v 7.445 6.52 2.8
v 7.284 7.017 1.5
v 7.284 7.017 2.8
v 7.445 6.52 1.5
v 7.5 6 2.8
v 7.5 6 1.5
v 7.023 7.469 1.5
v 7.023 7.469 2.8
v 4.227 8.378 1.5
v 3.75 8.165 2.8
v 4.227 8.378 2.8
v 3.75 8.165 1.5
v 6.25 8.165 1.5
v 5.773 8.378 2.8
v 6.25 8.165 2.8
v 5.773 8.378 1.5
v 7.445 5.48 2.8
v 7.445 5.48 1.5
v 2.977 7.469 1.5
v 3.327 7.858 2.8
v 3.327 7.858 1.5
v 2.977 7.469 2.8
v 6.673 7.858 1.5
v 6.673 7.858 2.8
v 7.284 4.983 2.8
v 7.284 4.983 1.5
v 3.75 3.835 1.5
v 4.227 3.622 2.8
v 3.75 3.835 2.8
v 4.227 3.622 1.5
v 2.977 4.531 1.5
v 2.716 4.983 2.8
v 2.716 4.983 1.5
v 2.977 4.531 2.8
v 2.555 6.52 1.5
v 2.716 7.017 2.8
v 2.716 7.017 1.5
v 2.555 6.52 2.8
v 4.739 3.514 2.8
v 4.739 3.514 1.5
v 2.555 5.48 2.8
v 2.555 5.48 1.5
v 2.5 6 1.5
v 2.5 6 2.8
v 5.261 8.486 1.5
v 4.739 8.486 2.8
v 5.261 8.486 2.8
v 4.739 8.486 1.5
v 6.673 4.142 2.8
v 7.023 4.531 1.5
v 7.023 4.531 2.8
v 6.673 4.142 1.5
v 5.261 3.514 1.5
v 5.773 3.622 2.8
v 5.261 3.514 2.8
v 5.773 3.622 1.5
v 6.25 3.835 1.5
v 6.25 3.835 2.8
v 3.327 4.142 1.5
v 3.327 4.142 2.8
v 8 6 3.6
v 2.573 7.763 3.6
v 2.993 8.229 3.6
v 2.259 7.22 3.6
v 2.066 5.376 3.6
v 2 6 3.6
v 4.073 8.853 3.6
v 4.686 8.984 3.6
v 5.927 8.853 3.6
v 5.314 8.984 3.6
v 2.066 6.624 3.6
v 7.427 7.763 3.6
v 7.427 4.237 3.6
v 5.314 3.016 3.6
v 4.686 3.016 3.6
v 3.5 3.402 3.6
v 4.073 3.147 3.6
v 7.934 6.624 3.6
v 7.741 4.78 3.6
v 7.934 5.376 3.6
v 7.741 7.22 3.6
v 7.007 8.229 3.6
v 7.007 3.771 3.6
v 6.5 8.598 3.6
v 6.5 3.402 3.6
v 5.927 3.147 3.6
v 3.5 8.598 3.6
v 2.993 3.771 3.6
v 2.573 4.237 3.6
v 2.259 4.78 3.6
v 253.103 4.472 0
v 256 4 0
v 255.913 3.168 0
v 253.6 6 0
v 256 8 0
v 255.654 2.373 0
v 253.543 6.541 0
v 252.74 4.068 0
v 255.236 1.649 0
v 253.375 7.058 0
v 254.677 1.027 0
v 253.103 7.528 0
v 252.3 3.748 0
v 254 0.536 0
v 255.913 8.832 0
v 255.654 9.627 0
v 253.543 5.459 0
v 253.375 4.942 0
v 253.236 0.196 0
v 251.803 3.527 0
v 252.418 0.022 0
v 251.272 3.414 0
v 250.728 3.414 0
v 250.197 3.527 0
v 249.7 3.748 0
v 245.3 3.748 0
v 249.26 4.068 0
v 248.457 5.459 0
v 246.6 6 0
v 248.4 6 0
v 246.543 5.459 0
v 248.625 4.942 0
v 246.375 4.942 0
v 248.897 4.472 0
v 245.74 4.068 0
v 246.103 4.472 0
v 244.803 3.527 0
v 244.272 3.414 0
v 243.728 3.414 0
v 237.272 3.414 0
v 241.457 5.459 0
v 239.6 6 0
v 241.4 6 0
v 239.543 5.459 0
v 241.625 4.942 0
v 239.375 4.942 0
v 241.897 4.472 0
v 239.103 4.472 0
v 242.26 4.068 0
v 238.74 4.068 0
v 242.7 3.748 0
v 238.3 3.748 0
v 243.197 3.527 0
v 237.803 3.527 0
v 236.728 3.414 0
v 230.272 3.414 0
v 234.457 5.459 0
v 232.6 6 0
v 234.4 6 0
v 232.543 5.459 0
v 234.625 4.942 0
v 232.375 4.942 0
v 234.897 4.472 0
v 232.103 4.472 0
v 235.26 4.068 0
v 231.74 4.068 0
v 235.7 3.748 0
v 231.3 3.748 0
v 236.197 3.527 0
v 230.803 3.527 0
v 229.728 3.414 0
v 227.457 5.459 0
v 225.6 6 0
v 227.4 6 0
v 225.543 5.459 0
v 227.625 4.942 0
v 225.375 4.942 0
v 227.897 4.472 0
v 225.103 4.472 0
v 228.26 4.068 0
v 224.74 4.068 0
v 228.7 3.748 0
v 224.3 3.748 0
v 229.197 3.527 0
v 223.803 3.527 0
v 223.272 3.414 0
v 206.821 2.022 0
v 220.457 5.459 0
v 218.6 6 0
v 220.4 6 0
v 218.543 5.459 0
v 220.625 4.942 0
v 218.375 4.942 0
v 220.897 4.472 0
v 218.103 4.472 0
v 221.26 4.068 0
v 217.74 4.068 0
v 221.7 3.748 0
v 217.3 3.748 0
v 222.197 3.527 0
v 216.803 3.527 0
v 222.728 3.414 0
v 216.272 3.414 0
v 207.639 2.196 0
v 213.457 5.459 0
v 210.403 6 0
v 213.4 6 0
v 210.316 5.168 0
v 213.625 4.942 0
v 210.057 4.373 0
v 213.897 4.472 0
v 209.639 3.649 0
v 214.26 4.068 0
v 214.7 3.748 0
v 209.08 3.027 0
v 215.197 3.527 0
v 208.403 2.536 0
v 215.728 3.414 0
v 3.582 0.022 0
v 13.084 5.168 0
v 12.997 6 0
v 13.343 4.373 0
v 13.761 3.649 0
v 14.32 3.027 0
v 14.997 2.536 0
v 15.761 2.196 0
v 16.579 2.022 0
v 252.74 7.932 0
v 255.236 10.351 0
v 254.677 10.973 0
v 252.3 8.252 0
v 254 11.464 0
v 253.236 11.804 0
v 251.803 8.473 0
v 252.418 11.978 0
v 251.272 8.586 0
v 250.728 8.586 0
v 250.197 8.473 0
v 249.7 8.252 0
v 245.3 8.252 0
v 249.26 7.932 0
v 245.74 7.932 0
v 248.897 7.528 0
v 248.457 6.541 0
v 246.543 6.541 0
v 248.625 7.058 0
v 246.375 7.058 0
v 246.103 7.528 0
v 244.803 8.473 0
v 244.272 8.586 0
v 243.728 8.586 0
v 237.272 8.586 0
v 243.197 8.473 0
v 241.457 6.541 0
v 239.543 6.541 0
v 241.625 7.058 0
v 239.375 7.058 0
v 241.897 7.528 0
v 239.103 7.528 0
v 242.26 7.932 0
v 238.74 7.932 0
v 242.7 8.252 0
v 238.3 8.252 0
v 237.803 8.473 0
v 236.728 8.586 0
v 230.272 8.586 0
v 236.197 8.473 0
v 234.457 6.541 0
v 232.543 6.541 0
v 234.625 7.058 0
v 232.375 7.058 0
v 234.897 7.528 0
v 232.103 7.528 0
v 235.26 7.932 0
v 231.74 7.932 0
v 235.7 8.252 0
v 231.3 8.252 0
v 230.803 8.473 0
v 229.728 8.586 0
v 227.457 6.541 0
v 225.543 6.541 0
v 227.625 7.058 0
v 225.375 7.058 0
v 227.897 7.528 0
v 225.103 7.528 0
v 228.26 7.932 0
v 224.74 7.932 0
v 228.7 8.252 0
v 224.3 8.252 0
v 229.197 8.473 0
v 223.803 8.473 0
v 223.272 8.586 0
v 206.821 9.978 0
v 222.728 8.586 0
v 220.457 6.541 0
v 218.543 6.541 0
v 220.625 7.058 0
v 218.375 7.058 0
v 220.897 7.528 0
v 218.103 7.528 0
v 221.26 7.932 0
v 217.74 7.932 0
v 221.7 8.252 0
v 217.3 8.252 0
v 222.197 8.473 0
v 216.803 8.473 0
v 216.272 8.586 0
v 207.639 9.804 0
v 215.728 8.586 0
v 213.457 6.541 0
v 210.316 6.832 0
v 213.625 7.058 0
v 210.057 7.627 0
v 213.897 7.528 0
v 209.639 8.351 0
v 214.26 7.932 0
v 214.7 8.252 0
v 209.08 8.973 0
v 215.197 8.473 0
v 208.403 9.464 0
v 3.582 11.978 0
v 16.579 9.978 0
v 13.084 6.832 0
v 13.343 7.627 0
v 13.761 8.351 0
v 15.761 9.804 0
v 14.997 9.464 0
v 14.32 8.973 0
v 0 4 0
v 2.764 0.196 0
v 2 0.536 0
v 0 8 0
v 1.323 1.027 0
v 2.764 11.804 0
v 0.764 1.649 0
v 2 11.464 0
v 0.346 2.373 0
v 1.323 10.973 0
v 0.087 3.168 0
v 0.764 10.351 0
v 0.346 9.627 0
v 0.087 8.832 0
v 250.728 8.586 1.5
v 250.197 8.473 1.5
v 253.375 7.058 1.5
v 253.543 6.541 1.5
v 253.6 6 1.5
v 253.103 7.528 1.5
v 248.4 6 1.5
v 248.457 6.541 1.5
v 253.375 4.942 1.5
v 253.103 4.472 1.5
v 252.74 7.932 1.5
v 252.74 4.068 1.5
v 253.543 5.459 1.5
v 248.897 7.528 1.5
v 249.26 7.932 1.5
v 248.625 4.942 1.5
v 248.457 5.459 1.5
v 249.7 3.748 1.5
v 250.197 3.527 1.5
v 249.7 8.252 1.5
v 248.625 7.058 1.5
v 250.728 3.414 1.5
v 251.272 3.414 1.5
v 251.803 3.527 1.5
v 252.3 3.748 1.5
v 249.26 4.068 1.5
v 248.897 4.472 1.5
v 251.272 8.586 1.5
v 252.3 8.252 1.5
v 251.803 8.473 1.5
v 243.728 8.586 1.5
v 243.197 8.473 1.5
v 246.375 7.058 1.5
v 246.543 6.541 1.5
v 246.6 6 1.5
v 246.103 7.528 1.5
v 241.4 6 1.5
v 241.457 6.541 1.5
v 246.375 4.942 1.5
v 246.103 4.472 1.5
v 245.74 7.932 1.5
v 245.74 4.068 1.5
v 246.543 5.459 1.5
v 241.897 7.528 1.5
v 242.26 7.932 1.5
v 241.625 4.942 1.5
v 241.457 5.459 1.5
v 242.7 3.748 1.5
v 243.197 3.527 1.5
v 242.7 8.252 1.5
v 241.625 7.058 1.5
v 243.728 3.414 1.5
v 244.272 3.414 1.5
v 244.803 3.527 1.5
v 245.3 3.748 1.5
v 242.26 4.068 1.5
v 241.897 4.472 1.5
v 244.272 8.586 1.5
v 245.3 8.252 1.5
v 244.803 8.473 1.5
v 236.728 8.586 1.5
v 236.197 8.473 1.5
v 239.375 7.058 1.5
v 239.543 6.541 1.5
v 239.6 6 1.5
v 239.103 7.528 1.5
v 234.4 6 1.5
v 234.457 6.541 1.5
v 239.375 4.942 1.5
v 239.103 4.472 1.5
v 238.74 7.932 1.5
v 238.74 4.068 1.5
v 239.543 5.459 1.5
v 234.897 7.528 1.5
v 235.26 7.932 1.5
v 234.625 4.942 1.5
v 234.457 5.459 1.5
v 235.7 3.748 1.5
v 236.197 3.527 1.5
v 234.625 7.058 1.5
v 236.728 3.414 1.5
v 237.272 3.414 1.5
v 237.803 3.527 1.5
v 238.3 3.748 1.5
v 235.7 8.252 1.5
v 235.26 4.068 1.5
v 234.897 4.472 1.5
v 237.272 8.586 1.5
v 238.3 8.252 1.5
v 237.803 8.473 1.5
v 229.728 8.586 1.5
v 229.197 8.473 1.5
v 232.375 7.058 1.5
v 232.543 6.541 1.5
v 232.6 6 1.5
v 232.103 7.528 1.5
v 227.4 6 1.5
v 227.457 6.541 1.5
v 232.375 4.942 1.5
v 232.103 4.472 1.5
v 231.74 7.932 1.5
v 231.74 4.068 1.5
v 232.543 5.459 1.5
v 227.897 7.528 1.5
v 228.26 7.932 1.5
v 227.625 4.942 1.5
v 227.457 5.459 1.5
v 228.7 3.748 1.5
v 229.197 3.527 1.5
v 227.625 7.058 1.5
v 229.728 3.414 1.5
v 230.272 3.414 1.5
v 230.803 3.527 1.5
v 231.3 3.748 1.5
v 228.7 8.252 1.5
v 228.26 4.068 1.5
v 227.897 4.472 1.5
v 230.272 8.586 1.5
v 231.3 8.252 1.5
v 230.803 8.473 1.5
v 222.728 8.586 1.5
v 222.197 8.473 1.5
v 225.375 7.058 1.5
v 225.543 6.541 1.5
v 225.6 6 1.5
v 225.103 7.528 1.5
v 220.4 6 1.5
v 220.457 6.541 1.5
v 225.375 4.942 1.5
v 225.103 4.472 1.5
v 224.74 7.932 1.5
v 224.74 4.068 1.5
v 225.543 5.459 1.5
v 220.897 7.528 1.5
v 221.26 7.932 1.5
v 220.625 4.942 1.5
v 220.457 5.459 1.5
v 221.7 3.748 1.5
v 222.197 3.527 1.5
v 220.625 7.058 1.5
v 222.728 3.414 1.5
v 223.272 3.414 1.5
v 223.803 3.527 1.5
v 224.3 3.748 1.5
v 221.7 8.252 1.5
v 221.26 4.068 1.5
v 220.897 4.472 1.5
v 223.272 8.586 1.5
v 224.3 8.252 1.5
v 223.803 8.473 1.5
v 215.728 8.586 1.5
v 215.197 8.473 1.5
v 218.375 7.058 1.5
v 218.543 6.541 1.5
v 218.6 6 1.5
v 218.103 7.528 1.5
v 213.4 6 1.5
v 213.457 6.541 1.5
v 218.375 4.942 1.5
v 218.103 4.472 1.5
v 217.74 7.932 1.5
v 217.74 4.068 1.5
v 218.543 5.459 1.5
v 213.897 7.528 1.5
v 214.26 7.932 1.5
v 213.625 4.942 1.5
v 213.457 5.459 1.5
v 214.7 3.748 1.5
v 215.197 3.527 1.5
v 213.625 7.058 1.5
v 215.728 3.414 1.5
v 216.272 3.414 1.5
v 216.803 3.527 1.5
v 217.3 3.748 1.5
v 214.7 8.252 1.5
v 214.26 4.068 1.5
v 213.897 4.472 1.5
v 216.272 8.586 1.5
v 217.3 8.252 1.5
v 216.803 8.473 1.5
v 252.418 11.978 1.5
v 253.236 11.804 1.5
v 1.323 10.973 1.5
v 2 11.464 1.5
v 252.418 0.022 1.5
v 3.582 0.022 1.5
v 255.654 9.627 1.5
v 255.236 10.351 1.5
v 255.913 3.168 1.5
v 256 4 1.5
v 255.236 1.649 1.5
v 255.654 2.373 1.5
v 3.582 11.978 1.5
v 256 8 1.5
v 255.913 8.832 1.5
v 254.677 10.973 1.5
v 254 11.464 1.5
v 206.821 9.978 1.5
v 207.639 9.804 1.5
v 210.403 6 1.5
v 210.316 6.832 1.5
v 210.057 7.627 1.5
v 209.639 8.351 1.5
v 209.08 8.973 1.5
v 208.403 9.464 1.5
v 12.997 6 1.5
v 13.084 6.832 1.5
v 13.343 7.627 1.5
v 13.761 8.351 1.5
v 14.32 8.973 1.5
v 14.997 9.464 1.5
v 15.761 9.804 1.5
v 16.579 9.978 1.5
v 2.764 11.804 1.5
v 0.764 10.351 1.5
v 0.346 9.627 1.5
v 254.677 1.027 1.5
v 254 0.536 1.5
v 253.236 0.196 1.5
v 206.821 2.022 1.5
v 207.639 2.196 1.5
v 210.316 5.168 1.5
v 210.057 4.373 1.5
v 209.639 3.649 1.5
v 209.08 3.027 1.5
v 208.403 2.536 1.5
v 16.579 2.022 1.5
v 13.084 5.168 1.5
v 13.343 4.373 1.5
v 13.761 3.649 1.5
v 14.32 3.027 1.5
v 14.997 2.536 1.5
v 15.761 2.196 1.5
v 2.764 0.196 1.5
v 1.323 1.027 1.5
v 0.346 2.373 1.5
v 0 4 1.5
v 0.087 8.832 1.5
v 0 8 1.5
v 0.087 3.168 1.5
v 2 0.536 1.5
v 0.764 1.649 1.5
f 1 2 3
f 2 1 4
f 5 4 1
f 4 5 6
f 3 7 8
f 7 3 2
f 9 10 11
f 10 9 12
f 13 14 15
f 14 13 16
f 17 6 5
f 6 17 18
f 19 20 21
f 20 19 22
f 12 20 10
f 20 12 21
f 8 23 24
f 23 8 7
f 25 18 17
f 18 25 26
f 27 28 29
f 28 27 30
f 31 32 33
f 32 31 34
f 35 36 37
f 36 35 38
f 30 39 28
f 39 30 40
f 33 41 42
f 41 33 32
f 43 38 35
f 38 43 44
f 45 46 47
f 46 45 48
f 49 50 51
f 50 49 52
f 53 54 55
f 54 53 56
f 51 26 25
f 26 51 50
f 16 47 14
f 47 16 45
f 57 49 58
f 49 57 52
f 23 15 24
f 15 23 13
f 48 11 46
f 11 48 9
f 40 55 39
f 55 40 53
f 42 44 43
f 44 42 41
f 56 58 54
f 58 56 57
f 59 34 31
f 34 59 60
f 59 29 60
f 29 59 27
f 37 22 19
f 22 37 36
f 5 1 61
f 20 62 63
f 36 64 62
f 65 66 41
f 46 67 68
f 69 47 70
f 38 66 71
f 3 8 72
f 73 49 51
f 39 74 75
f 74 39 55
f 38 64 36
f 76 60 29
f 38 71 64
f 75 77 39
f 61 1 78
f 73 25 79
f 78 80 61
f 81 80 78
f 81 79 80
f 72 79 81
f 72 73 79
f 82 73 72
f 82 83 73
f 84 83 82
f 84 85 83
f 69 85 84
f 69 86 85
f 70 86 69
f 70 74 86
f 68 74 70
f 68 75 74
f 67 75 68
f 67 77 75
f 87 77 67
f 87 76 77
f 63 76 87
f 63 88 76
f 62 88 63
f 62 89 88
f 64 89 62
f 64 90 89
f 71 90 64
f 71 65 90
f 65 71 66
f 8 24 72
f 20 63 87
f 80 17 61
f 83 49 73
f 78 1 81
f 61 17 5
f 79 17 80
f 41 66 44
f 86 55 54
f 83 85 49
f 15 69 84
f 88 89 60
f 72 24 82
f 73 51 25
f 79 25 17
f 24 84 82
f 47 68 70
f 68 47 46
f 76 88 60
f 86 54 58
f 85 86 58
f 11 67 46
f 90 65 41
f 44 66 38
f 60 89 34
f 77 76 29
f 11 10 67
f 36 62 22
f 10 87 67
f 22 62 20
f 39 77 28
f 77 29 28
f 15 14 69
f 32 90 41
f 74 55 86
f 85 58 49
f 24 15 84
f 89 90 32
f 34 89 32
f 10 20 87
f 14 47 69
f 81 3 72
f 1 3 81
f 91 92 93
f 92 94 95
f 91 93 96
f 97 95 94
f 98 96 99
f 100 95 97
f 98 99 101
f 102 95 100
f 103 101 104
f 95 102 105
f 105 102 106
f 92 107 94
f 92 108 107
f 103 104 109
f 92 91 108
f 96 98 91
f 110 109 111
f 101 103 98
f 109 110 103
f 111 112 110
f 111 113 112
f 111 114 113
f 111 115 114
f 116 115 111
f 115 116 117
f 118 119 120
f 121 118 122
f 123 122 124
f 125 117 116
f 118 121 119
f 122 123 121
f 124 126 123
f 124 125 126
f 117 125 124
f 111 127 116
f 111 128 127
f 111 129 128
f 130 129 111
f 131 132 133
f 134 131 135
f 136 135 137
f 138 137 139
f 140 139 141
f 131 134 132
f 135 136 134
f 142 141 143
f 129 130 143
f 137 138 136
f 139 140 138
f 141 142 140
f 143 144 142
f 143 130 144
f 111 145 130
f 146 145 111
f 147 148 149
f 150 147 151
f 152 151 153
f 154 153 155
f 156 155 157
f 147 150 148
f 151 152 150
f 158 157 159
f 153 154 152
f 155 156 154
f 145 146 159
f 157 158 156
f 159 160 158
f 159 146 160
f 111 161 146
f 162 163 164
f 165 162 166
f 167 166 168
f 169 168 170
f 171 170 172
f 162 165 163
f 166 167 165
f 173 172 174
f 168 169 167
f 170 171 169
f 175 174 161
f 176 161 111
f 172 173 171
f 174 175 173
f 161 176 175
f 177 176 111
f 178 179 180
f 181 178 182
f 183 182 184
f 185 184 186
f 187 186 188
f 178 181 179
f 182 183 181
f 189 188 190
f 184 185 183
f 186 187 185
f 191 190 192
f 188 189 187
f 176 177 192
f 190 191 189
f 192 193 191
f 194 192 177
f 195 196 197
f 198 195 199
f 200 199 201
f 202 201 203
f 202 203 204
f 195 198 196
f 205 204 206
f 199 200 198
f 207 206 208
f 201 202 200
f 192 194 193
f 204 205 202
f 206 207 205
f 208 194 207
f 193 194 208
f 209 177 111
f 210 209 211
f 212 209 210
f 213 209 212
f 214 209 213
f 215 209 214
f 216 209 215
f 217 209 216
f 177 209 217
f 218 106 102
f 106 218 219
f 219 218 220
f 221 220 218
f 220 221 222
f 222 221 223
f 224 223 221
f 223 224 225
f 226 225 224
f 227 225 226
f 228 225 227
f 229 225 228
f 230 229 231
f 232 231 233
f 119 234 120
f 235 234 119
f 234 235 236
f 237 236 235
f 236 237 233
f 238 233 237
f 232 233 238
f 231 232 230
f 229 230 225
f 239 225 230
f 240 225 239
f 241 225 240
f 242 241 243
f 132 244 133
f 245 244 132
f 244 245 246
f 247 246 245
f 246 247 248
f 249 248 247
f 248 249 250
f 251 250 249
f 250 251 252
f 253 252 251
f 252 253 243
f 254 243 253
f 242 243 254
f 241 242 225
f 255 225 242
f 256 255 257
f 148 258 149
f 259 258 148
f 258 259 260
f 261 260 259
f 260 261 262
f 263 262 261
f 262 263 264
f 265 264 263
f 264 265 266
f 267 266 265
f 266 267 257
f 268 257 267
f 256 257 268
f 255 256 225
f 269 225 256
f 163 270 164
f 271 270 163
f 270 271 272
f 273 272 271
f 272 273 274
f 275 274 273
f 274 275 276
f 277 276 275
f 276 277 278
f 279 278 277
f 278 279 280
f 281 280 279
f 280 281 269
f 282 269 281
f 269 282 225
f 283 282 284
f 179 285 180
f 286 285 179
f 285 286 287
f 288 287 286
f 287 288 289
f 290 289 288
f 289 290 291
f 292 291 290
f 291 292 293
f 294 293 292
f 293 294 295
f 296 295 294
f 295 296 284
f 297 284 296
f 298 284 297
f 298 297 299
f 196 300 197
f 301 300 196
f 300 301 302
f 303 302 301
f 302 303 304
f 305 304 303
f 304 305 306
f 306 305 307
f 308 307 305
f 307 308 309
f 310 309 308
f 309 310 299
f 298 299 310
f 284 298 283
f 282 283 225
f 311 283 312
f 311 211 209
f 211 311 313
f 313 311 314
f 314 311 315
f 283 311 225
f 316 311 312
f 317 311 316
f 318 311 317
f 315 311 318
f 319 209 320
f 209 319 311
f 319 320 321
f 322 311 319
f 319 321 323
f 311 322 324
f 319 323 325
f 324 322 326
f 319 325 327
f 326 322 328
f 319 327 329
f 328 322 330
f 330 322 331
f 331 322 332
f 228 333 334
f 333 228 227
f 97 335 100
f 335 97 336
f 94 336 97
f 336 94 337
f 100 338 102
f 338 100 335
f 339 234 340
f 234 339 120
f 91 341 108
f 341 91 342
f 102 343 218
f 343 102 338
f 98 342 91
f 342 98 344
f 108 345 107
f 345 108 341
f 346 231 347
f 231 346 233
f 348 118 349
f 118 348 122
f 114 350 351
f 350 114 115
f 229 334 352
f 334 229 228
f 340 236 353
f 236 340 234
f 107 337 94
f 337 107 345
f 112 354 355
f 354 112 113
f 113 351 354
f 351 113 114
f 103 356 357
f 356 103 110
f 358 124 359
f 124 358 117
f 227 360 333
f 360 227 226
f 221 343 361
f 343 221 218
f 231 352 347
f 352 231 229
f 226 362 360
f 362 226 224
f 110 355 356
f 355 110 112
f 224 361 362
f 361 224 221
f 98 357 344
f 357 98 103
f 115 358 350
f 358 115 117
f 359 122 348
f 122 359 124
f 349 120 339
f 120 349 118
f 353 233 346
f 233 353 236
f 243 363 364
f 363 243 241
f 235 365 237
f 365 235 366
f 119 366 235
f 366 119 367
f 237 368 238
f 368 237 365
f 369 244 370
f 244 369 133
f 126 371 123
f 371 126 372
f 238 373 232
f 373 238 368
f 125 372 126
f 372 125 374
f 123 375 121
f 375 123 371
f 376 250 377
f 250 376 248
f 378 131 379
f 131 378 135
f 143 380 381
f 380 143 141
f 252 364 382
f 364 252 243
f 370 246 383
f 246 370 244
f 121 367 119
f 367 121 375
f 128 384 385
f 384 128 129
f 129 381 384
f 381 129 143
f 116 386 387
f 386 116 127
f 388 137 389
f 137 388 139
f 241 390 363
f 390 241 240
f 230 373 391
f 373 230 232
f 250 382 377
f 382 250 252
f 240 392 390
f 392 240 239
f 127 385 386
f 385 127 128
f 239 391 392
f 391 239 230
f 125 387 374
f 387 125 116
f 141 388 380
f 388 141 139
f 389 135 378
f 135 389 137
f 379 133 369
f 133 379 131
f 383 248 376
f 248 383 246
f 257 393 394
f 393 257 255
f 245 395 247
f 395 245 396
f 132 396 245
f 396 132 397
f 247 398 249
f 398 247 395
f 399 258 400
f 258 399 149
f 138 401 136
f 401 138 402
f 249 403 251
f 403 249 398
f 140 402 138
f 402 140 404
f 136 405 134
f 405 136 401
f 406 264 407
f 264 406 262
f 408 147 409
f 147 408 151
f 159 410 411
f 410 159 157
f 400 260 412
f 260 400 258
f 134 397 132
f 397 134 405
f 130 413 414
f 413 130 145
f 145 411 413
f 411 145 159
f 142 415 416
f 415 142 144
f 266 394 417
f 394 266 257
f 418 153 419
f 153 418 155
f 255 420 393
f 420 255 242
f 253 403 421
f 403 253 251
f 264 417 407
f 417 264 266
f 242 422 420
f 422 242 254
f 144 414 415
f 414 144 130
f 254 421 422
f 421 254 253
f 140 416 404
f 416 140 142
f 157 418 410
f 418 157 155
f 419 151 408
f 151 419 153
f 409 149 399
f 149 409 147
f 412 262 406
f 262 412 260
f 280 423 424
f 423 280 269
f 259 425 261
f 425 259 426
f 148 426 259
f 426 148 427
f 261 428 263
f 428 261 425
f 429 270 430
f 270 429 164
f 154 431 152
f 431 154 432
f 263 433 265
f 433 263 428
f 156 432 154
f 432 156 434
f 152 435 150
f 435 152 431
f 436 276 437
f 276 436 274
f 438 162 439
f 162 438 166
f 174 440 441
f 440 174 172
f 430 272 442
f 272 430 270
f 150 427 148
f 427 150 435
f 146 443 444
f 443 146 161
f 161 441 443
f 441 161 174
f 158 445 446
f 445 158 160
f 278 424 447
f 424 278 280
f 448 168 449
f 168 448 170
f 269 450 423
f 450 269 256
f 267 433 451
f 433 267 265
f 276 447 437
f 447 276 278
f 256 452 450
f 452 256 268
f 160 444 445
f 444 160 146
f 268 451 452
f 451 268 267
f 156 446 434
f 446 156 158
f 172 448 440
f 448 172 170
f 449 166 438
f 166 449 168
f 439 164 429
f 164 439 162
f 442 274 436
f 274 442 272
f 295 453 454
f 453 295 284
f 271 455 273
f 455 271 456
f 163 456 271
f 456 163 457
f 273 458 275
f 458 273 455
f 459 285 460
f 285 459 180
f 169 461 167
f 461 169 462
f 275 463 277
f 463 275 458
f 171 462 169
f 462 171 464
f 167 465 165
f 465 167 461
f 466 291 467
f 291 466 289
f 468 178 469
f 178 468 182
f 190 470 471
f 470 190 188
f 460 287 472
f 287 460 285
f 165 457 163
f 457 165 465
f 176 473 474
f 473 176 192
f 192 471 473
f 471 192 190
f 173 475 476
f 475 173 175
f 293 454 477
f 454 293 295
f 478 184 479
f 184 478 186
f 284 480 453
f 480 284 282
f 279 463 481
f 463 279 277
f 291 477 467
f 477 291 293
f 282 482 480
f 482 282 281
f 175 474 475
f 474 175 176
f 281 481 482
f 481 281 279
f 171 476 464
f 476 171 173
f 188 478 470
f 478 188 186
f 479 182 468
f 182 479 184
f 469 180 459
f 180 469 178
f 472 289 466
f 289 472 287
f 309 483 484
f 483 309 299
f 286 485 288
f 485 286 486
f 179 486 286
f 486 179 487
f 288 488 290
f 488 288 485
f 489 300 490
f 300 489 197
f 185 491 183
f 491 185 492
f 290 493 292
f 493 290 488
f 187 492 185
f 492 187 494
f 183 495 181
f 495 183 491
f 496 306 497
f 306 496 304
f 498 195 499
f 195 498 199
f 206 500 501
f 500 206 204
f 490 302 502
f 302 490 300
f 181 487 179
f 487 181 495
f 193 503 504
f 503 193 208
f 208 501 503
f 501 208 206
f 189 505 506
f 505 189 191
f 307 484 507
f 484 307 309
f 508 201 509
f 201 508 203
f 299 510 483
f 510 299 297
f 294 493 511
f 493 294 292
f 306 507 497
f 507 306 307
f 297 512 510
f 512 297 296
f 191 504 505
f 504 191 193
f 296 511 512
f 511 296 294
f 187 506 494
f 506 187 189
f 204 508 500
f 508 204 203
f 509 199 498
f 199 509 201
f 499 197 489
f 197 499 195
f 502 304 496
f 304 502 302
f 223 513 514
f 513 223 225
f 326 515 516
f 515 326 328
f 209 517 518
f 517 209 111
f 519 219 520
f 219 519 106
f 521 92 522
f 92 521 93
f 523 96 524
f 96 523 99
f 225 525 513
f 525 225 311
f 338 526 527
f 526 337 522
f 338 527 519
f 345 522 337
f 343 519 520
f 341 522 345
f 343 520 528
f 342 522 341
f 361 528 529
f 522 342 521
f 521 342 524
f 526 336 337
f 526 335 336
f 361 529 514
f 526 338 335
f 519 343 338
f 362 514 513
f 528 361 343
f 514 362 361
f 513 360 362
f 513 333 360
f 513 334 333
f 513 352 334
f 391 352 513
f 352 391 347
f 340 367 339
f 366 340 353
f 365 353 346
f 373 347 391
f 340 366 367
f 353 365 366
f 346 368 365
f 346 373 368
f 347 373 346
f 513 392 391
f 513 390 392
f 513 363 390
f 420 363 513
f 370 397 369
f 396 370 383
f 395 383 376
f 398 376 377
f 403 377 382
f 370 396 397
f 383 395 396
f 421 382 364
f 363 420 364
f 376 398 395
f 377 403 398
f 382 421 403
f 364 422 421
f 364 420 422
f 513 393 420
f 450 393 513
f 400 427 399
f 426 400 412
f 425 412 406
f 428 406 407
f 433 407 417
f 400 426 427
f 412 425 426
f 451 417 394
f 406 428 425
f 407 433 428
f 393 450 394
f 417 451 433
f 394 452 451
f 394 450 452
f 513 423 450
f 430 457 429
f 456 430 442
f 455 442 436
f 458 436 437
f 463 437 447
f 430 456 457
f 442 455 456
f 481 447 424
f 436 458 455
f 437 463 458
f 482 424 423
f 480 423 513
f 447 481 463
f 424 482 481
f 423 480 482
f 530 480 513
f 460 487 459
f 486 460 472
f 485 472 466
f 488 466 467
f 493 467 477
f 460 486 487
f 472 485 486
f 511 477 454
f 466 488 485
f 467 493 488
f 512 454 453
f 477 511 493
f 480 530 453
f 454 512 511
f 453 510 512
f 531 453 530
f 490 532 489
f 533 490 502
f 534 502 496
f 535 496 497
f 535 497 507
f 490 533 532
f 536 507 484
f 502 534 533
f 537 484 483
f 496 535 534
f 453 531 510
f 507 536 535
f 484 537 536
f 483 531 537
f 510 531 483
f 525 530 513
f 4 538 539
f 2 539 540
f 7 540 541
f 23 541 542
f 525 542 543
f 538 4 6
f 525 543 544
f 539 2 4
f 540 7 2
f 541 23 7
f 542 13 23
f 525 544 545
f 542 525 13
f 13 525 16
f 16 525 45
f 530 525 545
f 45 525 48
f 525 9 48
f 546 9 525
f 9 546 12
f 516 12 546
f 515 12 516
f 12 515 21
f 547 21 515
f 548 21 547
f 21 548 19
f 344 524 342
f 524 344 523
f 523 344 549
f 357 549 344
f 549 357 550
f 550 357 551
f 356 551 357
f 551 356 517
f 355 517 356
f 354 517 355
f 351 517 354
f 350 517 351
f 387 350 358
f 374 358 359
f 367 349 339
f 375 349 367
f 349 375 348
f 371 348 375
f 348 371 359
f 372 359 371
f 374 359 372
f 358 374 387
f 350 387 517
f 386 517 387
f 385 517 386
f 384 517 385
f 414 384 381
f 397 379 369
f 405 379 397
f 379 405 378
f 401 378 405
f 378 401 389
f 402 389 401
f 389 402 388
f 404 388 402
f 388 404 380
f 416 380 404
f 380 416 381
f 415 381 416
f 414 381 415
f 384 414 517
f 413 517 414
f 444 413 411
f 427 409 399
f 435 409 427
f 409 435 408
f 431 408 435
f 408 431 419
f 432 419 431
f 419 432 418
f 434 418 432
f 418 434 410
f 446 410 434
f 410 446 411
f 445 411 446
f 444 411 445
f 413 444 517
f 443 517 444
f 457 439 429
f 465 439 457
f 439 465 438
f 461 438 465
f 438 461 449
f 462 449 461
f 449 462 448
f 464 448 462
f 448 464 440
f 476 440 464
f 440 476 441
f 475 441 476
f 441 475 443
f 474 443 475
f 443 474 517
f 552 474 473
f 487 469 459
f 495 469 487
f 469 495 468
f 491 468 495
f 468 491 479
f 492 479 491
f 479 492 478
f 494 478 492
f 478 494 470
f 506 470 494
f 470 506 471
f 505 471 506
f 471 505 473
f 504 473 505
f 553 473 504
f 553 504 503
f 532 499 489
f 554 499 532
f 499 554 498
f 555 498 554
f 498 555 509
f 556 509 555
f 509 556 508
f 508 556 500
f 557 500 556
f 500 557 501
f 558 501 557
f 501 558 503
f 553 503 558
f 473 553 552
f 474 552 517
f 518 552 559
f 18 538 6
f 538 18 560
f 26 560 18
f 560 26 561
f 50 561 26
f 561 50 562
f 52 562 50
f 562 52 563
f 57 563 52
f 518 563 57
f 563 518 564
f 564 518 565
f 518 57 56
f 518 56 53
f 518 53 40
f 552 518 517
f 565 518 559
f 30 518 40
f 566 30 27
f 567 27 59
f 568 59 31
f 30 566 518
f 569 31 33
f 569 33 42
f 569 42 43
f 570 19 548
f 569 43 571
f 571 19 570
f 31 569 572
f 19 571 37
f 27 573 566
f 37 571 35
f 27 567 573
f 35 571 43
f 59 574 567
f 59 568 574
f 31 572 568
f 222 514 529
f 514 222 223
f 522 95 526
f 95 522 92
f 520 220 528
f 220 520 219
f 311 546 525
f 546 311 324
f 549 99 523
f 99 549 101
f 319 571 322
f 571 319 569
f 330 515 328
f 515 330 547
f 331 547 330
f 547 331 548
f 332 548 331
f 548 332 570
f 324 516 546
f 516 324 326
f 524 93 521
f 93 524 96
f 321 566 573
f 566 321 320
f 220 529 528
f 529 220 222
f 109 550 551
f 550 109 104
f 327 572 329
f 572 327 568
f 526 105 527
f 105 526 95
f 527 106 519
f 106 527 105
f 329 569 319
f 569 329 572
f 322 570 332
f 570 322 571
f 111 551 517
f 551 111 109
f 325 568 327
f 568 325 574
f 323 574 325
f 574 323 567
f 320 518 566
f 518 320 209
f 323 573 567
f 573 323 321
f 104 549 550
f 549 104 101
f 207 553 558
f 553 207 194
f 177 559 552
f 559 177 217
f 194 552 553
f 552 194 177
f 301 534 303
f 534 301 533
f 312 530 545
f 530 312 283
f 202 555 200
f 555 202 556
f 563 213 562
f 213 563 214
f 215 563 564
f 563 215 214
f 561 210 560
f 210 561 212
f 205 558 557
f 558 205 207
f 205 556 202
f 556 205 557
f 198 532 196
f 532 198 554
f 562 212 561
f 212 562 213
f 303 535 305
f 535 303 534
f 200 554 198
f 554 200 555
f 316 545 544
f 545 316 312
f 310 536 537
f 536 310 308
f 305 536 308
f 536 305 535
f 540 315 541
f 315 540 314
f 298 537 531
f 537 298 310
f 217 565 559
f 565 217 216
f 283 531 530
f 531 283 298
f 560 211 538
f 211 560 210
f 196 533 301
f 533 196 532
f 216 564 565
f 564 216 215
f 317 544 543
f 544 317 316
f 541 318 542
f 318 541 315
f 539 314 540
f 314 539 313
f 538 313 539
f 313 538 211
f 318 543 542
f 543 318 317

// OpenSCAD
// Bracelet basic parameters
length = 256;    // Total length in mm
width = 12;      // Width of the band in mm
height = 1.5;    // Thickness/height of the band in mm
bevel_radius = 4; // Radius for the beveled/curved edges

// Improved closure system parameters
peg_diameter = 5;      // Increased diameter for more strength
peg_height = 2.6;      // Taller peg for better retention
peg_top_diameter = 6; // Flared top for secure fastening
peg_base_height = 1;   // Height of the reinforced base
hole_diameter = 5.2;   // Slightly larger than peg for good fit
num_holes = 6;         // Number of adjustment holes
hole_spacing = 7;      // Distance between hole centers
peg_offset = 5;        // Distance from end to peg

// Calculate the available space between peg and the hole area
hole_area_width = (num_holes - 1) * hole_spacing;  // Width of the area containing all holes
last_hole_position = length - peg_offset - (num_holes - 1) * hole_spacing;  // Position of the last hole
peg_position = peg_offset;  // Position of the peg

// Define the safe area for the rectangle
safe_start = peg_position + peg_diameter + 2;  // Safe distance after the peg
safe_end = last_hole_position - hole_diameter/2 - 2;  // Safe distance before the last hole
available_space = safe_end - safe_start;  // Available space for the rectangle

// Center rectangular cutout parameters
rect_width_percentage = 0.99;  // Width as percentage of available space (0.0-1.0)
rect_width = available_space * rect_width_percentage;  // Width calculated automatically
rect_height = 8;      // Height of the rectangular cutout
rect_bevel = 4;       // Bevel radius for the rectangular cutout
rect_offset_y = 0;    // Vertical offset from center (positive = up)

// Calculate the center position between peg and holes area
rect_center = safe_start + (available_space / 2);
rect_offset_x = rect_center - (length/2);  // Offset from bracelet center

module rounded_band() {
    // Create the main band with rounded edges
    hull() {
        translate([bevel_radius, bevel_radius, 0])
        cylinder(r=bevel_radius, h=height, $fn=30);
        
        translate([length - bevel_radius, bevel_radius, 0])
        cylinder(r=bevel_radius, h=height, $fn=30);
        
        translate([bevel_radius, width - bevel_radius, 0])
        cylinder(r=bevel_radius, h=height, $fn=30);
        
        translate([length - bevel_radius, width - bevel_radius, 0])
        cylinder(r=bevel_radius, h=height, $fn=30);
    }
}

// Rounded rectangle cutout module
module rounded_rect_cutout(width, height, radius, thick) {
    hull() {
        translate([radius, radius, -0.1])
        cylinder(r=radius, h=thick+0.2, $fn=30);
        
        translate([width - radius, radius, -0.1])
        cylinder(r=radius, h=thick+0.2, $fn=30);
        
        translate([radius, height - radius, -0.1])
        cylinder(r=radius, h=thick+0.2, $fn=30);
        
        translate([width - radius, height - radius, -0.1])
        cylinder(r=radius, h=thick+0.2, $fn=30);
    }
}

// Main bracelet body with cutouts
difference() {
    rounded_band();
    
    // Create adjustment holes on one end
    for (i = [0:num_holes-1]) {
        translate([length - peg_offset - (i * hole_spacing), width/2, -0.1])
        cylinder(d=hole_diameter, h=height+0.2, $fn=30);
    }
    
    // Add center rectangular cutout
    // Position it in the center between peg and first hole
    translate([length/2 - rect_width/2 + rect_offset_x, width/2 - rect_height/2 + rect_offset_y, 0])
    rounded_rect_cutout(rect_width, rect_height, rect_bevel, height);
}

// Add a single peg on the other end with reinforced base
translate([peg_offset, width/2, 0]) {
    // Reinforced base for the peg
    cylinder(d=peg_diameter + 2, h=peg_base_height, $fn=30);
    
    // Peg with flared top
    translate([0, 0, peg_base_height]) {
        // Main peg body
        cylinder(d1=peg_diameter, d2=peg_diameter, h=peg_height-0.8, $fn=30);
        
        // Flared top portion
        translate([0, 0, peg_height-0.8])
        cylinder(d1=peg_diameter, d2=peg_top_diameter, h=0.8, $fn=30);
    }
}

// Add some debug text to verify dimensions
echo("Total length:", length);
echo("Peg position:", peg_offset);
echo("First hole position:", length - peg_offset);
echo("Last hole position:", last_hole_position);
echo("Safe start position:", safe_start);
echo("Safe end position:", safe_end);
echo("Available space:", available_space);
echo("Rectangle width:", rect_width);
echo("Rectangle center position:", rect_center);
